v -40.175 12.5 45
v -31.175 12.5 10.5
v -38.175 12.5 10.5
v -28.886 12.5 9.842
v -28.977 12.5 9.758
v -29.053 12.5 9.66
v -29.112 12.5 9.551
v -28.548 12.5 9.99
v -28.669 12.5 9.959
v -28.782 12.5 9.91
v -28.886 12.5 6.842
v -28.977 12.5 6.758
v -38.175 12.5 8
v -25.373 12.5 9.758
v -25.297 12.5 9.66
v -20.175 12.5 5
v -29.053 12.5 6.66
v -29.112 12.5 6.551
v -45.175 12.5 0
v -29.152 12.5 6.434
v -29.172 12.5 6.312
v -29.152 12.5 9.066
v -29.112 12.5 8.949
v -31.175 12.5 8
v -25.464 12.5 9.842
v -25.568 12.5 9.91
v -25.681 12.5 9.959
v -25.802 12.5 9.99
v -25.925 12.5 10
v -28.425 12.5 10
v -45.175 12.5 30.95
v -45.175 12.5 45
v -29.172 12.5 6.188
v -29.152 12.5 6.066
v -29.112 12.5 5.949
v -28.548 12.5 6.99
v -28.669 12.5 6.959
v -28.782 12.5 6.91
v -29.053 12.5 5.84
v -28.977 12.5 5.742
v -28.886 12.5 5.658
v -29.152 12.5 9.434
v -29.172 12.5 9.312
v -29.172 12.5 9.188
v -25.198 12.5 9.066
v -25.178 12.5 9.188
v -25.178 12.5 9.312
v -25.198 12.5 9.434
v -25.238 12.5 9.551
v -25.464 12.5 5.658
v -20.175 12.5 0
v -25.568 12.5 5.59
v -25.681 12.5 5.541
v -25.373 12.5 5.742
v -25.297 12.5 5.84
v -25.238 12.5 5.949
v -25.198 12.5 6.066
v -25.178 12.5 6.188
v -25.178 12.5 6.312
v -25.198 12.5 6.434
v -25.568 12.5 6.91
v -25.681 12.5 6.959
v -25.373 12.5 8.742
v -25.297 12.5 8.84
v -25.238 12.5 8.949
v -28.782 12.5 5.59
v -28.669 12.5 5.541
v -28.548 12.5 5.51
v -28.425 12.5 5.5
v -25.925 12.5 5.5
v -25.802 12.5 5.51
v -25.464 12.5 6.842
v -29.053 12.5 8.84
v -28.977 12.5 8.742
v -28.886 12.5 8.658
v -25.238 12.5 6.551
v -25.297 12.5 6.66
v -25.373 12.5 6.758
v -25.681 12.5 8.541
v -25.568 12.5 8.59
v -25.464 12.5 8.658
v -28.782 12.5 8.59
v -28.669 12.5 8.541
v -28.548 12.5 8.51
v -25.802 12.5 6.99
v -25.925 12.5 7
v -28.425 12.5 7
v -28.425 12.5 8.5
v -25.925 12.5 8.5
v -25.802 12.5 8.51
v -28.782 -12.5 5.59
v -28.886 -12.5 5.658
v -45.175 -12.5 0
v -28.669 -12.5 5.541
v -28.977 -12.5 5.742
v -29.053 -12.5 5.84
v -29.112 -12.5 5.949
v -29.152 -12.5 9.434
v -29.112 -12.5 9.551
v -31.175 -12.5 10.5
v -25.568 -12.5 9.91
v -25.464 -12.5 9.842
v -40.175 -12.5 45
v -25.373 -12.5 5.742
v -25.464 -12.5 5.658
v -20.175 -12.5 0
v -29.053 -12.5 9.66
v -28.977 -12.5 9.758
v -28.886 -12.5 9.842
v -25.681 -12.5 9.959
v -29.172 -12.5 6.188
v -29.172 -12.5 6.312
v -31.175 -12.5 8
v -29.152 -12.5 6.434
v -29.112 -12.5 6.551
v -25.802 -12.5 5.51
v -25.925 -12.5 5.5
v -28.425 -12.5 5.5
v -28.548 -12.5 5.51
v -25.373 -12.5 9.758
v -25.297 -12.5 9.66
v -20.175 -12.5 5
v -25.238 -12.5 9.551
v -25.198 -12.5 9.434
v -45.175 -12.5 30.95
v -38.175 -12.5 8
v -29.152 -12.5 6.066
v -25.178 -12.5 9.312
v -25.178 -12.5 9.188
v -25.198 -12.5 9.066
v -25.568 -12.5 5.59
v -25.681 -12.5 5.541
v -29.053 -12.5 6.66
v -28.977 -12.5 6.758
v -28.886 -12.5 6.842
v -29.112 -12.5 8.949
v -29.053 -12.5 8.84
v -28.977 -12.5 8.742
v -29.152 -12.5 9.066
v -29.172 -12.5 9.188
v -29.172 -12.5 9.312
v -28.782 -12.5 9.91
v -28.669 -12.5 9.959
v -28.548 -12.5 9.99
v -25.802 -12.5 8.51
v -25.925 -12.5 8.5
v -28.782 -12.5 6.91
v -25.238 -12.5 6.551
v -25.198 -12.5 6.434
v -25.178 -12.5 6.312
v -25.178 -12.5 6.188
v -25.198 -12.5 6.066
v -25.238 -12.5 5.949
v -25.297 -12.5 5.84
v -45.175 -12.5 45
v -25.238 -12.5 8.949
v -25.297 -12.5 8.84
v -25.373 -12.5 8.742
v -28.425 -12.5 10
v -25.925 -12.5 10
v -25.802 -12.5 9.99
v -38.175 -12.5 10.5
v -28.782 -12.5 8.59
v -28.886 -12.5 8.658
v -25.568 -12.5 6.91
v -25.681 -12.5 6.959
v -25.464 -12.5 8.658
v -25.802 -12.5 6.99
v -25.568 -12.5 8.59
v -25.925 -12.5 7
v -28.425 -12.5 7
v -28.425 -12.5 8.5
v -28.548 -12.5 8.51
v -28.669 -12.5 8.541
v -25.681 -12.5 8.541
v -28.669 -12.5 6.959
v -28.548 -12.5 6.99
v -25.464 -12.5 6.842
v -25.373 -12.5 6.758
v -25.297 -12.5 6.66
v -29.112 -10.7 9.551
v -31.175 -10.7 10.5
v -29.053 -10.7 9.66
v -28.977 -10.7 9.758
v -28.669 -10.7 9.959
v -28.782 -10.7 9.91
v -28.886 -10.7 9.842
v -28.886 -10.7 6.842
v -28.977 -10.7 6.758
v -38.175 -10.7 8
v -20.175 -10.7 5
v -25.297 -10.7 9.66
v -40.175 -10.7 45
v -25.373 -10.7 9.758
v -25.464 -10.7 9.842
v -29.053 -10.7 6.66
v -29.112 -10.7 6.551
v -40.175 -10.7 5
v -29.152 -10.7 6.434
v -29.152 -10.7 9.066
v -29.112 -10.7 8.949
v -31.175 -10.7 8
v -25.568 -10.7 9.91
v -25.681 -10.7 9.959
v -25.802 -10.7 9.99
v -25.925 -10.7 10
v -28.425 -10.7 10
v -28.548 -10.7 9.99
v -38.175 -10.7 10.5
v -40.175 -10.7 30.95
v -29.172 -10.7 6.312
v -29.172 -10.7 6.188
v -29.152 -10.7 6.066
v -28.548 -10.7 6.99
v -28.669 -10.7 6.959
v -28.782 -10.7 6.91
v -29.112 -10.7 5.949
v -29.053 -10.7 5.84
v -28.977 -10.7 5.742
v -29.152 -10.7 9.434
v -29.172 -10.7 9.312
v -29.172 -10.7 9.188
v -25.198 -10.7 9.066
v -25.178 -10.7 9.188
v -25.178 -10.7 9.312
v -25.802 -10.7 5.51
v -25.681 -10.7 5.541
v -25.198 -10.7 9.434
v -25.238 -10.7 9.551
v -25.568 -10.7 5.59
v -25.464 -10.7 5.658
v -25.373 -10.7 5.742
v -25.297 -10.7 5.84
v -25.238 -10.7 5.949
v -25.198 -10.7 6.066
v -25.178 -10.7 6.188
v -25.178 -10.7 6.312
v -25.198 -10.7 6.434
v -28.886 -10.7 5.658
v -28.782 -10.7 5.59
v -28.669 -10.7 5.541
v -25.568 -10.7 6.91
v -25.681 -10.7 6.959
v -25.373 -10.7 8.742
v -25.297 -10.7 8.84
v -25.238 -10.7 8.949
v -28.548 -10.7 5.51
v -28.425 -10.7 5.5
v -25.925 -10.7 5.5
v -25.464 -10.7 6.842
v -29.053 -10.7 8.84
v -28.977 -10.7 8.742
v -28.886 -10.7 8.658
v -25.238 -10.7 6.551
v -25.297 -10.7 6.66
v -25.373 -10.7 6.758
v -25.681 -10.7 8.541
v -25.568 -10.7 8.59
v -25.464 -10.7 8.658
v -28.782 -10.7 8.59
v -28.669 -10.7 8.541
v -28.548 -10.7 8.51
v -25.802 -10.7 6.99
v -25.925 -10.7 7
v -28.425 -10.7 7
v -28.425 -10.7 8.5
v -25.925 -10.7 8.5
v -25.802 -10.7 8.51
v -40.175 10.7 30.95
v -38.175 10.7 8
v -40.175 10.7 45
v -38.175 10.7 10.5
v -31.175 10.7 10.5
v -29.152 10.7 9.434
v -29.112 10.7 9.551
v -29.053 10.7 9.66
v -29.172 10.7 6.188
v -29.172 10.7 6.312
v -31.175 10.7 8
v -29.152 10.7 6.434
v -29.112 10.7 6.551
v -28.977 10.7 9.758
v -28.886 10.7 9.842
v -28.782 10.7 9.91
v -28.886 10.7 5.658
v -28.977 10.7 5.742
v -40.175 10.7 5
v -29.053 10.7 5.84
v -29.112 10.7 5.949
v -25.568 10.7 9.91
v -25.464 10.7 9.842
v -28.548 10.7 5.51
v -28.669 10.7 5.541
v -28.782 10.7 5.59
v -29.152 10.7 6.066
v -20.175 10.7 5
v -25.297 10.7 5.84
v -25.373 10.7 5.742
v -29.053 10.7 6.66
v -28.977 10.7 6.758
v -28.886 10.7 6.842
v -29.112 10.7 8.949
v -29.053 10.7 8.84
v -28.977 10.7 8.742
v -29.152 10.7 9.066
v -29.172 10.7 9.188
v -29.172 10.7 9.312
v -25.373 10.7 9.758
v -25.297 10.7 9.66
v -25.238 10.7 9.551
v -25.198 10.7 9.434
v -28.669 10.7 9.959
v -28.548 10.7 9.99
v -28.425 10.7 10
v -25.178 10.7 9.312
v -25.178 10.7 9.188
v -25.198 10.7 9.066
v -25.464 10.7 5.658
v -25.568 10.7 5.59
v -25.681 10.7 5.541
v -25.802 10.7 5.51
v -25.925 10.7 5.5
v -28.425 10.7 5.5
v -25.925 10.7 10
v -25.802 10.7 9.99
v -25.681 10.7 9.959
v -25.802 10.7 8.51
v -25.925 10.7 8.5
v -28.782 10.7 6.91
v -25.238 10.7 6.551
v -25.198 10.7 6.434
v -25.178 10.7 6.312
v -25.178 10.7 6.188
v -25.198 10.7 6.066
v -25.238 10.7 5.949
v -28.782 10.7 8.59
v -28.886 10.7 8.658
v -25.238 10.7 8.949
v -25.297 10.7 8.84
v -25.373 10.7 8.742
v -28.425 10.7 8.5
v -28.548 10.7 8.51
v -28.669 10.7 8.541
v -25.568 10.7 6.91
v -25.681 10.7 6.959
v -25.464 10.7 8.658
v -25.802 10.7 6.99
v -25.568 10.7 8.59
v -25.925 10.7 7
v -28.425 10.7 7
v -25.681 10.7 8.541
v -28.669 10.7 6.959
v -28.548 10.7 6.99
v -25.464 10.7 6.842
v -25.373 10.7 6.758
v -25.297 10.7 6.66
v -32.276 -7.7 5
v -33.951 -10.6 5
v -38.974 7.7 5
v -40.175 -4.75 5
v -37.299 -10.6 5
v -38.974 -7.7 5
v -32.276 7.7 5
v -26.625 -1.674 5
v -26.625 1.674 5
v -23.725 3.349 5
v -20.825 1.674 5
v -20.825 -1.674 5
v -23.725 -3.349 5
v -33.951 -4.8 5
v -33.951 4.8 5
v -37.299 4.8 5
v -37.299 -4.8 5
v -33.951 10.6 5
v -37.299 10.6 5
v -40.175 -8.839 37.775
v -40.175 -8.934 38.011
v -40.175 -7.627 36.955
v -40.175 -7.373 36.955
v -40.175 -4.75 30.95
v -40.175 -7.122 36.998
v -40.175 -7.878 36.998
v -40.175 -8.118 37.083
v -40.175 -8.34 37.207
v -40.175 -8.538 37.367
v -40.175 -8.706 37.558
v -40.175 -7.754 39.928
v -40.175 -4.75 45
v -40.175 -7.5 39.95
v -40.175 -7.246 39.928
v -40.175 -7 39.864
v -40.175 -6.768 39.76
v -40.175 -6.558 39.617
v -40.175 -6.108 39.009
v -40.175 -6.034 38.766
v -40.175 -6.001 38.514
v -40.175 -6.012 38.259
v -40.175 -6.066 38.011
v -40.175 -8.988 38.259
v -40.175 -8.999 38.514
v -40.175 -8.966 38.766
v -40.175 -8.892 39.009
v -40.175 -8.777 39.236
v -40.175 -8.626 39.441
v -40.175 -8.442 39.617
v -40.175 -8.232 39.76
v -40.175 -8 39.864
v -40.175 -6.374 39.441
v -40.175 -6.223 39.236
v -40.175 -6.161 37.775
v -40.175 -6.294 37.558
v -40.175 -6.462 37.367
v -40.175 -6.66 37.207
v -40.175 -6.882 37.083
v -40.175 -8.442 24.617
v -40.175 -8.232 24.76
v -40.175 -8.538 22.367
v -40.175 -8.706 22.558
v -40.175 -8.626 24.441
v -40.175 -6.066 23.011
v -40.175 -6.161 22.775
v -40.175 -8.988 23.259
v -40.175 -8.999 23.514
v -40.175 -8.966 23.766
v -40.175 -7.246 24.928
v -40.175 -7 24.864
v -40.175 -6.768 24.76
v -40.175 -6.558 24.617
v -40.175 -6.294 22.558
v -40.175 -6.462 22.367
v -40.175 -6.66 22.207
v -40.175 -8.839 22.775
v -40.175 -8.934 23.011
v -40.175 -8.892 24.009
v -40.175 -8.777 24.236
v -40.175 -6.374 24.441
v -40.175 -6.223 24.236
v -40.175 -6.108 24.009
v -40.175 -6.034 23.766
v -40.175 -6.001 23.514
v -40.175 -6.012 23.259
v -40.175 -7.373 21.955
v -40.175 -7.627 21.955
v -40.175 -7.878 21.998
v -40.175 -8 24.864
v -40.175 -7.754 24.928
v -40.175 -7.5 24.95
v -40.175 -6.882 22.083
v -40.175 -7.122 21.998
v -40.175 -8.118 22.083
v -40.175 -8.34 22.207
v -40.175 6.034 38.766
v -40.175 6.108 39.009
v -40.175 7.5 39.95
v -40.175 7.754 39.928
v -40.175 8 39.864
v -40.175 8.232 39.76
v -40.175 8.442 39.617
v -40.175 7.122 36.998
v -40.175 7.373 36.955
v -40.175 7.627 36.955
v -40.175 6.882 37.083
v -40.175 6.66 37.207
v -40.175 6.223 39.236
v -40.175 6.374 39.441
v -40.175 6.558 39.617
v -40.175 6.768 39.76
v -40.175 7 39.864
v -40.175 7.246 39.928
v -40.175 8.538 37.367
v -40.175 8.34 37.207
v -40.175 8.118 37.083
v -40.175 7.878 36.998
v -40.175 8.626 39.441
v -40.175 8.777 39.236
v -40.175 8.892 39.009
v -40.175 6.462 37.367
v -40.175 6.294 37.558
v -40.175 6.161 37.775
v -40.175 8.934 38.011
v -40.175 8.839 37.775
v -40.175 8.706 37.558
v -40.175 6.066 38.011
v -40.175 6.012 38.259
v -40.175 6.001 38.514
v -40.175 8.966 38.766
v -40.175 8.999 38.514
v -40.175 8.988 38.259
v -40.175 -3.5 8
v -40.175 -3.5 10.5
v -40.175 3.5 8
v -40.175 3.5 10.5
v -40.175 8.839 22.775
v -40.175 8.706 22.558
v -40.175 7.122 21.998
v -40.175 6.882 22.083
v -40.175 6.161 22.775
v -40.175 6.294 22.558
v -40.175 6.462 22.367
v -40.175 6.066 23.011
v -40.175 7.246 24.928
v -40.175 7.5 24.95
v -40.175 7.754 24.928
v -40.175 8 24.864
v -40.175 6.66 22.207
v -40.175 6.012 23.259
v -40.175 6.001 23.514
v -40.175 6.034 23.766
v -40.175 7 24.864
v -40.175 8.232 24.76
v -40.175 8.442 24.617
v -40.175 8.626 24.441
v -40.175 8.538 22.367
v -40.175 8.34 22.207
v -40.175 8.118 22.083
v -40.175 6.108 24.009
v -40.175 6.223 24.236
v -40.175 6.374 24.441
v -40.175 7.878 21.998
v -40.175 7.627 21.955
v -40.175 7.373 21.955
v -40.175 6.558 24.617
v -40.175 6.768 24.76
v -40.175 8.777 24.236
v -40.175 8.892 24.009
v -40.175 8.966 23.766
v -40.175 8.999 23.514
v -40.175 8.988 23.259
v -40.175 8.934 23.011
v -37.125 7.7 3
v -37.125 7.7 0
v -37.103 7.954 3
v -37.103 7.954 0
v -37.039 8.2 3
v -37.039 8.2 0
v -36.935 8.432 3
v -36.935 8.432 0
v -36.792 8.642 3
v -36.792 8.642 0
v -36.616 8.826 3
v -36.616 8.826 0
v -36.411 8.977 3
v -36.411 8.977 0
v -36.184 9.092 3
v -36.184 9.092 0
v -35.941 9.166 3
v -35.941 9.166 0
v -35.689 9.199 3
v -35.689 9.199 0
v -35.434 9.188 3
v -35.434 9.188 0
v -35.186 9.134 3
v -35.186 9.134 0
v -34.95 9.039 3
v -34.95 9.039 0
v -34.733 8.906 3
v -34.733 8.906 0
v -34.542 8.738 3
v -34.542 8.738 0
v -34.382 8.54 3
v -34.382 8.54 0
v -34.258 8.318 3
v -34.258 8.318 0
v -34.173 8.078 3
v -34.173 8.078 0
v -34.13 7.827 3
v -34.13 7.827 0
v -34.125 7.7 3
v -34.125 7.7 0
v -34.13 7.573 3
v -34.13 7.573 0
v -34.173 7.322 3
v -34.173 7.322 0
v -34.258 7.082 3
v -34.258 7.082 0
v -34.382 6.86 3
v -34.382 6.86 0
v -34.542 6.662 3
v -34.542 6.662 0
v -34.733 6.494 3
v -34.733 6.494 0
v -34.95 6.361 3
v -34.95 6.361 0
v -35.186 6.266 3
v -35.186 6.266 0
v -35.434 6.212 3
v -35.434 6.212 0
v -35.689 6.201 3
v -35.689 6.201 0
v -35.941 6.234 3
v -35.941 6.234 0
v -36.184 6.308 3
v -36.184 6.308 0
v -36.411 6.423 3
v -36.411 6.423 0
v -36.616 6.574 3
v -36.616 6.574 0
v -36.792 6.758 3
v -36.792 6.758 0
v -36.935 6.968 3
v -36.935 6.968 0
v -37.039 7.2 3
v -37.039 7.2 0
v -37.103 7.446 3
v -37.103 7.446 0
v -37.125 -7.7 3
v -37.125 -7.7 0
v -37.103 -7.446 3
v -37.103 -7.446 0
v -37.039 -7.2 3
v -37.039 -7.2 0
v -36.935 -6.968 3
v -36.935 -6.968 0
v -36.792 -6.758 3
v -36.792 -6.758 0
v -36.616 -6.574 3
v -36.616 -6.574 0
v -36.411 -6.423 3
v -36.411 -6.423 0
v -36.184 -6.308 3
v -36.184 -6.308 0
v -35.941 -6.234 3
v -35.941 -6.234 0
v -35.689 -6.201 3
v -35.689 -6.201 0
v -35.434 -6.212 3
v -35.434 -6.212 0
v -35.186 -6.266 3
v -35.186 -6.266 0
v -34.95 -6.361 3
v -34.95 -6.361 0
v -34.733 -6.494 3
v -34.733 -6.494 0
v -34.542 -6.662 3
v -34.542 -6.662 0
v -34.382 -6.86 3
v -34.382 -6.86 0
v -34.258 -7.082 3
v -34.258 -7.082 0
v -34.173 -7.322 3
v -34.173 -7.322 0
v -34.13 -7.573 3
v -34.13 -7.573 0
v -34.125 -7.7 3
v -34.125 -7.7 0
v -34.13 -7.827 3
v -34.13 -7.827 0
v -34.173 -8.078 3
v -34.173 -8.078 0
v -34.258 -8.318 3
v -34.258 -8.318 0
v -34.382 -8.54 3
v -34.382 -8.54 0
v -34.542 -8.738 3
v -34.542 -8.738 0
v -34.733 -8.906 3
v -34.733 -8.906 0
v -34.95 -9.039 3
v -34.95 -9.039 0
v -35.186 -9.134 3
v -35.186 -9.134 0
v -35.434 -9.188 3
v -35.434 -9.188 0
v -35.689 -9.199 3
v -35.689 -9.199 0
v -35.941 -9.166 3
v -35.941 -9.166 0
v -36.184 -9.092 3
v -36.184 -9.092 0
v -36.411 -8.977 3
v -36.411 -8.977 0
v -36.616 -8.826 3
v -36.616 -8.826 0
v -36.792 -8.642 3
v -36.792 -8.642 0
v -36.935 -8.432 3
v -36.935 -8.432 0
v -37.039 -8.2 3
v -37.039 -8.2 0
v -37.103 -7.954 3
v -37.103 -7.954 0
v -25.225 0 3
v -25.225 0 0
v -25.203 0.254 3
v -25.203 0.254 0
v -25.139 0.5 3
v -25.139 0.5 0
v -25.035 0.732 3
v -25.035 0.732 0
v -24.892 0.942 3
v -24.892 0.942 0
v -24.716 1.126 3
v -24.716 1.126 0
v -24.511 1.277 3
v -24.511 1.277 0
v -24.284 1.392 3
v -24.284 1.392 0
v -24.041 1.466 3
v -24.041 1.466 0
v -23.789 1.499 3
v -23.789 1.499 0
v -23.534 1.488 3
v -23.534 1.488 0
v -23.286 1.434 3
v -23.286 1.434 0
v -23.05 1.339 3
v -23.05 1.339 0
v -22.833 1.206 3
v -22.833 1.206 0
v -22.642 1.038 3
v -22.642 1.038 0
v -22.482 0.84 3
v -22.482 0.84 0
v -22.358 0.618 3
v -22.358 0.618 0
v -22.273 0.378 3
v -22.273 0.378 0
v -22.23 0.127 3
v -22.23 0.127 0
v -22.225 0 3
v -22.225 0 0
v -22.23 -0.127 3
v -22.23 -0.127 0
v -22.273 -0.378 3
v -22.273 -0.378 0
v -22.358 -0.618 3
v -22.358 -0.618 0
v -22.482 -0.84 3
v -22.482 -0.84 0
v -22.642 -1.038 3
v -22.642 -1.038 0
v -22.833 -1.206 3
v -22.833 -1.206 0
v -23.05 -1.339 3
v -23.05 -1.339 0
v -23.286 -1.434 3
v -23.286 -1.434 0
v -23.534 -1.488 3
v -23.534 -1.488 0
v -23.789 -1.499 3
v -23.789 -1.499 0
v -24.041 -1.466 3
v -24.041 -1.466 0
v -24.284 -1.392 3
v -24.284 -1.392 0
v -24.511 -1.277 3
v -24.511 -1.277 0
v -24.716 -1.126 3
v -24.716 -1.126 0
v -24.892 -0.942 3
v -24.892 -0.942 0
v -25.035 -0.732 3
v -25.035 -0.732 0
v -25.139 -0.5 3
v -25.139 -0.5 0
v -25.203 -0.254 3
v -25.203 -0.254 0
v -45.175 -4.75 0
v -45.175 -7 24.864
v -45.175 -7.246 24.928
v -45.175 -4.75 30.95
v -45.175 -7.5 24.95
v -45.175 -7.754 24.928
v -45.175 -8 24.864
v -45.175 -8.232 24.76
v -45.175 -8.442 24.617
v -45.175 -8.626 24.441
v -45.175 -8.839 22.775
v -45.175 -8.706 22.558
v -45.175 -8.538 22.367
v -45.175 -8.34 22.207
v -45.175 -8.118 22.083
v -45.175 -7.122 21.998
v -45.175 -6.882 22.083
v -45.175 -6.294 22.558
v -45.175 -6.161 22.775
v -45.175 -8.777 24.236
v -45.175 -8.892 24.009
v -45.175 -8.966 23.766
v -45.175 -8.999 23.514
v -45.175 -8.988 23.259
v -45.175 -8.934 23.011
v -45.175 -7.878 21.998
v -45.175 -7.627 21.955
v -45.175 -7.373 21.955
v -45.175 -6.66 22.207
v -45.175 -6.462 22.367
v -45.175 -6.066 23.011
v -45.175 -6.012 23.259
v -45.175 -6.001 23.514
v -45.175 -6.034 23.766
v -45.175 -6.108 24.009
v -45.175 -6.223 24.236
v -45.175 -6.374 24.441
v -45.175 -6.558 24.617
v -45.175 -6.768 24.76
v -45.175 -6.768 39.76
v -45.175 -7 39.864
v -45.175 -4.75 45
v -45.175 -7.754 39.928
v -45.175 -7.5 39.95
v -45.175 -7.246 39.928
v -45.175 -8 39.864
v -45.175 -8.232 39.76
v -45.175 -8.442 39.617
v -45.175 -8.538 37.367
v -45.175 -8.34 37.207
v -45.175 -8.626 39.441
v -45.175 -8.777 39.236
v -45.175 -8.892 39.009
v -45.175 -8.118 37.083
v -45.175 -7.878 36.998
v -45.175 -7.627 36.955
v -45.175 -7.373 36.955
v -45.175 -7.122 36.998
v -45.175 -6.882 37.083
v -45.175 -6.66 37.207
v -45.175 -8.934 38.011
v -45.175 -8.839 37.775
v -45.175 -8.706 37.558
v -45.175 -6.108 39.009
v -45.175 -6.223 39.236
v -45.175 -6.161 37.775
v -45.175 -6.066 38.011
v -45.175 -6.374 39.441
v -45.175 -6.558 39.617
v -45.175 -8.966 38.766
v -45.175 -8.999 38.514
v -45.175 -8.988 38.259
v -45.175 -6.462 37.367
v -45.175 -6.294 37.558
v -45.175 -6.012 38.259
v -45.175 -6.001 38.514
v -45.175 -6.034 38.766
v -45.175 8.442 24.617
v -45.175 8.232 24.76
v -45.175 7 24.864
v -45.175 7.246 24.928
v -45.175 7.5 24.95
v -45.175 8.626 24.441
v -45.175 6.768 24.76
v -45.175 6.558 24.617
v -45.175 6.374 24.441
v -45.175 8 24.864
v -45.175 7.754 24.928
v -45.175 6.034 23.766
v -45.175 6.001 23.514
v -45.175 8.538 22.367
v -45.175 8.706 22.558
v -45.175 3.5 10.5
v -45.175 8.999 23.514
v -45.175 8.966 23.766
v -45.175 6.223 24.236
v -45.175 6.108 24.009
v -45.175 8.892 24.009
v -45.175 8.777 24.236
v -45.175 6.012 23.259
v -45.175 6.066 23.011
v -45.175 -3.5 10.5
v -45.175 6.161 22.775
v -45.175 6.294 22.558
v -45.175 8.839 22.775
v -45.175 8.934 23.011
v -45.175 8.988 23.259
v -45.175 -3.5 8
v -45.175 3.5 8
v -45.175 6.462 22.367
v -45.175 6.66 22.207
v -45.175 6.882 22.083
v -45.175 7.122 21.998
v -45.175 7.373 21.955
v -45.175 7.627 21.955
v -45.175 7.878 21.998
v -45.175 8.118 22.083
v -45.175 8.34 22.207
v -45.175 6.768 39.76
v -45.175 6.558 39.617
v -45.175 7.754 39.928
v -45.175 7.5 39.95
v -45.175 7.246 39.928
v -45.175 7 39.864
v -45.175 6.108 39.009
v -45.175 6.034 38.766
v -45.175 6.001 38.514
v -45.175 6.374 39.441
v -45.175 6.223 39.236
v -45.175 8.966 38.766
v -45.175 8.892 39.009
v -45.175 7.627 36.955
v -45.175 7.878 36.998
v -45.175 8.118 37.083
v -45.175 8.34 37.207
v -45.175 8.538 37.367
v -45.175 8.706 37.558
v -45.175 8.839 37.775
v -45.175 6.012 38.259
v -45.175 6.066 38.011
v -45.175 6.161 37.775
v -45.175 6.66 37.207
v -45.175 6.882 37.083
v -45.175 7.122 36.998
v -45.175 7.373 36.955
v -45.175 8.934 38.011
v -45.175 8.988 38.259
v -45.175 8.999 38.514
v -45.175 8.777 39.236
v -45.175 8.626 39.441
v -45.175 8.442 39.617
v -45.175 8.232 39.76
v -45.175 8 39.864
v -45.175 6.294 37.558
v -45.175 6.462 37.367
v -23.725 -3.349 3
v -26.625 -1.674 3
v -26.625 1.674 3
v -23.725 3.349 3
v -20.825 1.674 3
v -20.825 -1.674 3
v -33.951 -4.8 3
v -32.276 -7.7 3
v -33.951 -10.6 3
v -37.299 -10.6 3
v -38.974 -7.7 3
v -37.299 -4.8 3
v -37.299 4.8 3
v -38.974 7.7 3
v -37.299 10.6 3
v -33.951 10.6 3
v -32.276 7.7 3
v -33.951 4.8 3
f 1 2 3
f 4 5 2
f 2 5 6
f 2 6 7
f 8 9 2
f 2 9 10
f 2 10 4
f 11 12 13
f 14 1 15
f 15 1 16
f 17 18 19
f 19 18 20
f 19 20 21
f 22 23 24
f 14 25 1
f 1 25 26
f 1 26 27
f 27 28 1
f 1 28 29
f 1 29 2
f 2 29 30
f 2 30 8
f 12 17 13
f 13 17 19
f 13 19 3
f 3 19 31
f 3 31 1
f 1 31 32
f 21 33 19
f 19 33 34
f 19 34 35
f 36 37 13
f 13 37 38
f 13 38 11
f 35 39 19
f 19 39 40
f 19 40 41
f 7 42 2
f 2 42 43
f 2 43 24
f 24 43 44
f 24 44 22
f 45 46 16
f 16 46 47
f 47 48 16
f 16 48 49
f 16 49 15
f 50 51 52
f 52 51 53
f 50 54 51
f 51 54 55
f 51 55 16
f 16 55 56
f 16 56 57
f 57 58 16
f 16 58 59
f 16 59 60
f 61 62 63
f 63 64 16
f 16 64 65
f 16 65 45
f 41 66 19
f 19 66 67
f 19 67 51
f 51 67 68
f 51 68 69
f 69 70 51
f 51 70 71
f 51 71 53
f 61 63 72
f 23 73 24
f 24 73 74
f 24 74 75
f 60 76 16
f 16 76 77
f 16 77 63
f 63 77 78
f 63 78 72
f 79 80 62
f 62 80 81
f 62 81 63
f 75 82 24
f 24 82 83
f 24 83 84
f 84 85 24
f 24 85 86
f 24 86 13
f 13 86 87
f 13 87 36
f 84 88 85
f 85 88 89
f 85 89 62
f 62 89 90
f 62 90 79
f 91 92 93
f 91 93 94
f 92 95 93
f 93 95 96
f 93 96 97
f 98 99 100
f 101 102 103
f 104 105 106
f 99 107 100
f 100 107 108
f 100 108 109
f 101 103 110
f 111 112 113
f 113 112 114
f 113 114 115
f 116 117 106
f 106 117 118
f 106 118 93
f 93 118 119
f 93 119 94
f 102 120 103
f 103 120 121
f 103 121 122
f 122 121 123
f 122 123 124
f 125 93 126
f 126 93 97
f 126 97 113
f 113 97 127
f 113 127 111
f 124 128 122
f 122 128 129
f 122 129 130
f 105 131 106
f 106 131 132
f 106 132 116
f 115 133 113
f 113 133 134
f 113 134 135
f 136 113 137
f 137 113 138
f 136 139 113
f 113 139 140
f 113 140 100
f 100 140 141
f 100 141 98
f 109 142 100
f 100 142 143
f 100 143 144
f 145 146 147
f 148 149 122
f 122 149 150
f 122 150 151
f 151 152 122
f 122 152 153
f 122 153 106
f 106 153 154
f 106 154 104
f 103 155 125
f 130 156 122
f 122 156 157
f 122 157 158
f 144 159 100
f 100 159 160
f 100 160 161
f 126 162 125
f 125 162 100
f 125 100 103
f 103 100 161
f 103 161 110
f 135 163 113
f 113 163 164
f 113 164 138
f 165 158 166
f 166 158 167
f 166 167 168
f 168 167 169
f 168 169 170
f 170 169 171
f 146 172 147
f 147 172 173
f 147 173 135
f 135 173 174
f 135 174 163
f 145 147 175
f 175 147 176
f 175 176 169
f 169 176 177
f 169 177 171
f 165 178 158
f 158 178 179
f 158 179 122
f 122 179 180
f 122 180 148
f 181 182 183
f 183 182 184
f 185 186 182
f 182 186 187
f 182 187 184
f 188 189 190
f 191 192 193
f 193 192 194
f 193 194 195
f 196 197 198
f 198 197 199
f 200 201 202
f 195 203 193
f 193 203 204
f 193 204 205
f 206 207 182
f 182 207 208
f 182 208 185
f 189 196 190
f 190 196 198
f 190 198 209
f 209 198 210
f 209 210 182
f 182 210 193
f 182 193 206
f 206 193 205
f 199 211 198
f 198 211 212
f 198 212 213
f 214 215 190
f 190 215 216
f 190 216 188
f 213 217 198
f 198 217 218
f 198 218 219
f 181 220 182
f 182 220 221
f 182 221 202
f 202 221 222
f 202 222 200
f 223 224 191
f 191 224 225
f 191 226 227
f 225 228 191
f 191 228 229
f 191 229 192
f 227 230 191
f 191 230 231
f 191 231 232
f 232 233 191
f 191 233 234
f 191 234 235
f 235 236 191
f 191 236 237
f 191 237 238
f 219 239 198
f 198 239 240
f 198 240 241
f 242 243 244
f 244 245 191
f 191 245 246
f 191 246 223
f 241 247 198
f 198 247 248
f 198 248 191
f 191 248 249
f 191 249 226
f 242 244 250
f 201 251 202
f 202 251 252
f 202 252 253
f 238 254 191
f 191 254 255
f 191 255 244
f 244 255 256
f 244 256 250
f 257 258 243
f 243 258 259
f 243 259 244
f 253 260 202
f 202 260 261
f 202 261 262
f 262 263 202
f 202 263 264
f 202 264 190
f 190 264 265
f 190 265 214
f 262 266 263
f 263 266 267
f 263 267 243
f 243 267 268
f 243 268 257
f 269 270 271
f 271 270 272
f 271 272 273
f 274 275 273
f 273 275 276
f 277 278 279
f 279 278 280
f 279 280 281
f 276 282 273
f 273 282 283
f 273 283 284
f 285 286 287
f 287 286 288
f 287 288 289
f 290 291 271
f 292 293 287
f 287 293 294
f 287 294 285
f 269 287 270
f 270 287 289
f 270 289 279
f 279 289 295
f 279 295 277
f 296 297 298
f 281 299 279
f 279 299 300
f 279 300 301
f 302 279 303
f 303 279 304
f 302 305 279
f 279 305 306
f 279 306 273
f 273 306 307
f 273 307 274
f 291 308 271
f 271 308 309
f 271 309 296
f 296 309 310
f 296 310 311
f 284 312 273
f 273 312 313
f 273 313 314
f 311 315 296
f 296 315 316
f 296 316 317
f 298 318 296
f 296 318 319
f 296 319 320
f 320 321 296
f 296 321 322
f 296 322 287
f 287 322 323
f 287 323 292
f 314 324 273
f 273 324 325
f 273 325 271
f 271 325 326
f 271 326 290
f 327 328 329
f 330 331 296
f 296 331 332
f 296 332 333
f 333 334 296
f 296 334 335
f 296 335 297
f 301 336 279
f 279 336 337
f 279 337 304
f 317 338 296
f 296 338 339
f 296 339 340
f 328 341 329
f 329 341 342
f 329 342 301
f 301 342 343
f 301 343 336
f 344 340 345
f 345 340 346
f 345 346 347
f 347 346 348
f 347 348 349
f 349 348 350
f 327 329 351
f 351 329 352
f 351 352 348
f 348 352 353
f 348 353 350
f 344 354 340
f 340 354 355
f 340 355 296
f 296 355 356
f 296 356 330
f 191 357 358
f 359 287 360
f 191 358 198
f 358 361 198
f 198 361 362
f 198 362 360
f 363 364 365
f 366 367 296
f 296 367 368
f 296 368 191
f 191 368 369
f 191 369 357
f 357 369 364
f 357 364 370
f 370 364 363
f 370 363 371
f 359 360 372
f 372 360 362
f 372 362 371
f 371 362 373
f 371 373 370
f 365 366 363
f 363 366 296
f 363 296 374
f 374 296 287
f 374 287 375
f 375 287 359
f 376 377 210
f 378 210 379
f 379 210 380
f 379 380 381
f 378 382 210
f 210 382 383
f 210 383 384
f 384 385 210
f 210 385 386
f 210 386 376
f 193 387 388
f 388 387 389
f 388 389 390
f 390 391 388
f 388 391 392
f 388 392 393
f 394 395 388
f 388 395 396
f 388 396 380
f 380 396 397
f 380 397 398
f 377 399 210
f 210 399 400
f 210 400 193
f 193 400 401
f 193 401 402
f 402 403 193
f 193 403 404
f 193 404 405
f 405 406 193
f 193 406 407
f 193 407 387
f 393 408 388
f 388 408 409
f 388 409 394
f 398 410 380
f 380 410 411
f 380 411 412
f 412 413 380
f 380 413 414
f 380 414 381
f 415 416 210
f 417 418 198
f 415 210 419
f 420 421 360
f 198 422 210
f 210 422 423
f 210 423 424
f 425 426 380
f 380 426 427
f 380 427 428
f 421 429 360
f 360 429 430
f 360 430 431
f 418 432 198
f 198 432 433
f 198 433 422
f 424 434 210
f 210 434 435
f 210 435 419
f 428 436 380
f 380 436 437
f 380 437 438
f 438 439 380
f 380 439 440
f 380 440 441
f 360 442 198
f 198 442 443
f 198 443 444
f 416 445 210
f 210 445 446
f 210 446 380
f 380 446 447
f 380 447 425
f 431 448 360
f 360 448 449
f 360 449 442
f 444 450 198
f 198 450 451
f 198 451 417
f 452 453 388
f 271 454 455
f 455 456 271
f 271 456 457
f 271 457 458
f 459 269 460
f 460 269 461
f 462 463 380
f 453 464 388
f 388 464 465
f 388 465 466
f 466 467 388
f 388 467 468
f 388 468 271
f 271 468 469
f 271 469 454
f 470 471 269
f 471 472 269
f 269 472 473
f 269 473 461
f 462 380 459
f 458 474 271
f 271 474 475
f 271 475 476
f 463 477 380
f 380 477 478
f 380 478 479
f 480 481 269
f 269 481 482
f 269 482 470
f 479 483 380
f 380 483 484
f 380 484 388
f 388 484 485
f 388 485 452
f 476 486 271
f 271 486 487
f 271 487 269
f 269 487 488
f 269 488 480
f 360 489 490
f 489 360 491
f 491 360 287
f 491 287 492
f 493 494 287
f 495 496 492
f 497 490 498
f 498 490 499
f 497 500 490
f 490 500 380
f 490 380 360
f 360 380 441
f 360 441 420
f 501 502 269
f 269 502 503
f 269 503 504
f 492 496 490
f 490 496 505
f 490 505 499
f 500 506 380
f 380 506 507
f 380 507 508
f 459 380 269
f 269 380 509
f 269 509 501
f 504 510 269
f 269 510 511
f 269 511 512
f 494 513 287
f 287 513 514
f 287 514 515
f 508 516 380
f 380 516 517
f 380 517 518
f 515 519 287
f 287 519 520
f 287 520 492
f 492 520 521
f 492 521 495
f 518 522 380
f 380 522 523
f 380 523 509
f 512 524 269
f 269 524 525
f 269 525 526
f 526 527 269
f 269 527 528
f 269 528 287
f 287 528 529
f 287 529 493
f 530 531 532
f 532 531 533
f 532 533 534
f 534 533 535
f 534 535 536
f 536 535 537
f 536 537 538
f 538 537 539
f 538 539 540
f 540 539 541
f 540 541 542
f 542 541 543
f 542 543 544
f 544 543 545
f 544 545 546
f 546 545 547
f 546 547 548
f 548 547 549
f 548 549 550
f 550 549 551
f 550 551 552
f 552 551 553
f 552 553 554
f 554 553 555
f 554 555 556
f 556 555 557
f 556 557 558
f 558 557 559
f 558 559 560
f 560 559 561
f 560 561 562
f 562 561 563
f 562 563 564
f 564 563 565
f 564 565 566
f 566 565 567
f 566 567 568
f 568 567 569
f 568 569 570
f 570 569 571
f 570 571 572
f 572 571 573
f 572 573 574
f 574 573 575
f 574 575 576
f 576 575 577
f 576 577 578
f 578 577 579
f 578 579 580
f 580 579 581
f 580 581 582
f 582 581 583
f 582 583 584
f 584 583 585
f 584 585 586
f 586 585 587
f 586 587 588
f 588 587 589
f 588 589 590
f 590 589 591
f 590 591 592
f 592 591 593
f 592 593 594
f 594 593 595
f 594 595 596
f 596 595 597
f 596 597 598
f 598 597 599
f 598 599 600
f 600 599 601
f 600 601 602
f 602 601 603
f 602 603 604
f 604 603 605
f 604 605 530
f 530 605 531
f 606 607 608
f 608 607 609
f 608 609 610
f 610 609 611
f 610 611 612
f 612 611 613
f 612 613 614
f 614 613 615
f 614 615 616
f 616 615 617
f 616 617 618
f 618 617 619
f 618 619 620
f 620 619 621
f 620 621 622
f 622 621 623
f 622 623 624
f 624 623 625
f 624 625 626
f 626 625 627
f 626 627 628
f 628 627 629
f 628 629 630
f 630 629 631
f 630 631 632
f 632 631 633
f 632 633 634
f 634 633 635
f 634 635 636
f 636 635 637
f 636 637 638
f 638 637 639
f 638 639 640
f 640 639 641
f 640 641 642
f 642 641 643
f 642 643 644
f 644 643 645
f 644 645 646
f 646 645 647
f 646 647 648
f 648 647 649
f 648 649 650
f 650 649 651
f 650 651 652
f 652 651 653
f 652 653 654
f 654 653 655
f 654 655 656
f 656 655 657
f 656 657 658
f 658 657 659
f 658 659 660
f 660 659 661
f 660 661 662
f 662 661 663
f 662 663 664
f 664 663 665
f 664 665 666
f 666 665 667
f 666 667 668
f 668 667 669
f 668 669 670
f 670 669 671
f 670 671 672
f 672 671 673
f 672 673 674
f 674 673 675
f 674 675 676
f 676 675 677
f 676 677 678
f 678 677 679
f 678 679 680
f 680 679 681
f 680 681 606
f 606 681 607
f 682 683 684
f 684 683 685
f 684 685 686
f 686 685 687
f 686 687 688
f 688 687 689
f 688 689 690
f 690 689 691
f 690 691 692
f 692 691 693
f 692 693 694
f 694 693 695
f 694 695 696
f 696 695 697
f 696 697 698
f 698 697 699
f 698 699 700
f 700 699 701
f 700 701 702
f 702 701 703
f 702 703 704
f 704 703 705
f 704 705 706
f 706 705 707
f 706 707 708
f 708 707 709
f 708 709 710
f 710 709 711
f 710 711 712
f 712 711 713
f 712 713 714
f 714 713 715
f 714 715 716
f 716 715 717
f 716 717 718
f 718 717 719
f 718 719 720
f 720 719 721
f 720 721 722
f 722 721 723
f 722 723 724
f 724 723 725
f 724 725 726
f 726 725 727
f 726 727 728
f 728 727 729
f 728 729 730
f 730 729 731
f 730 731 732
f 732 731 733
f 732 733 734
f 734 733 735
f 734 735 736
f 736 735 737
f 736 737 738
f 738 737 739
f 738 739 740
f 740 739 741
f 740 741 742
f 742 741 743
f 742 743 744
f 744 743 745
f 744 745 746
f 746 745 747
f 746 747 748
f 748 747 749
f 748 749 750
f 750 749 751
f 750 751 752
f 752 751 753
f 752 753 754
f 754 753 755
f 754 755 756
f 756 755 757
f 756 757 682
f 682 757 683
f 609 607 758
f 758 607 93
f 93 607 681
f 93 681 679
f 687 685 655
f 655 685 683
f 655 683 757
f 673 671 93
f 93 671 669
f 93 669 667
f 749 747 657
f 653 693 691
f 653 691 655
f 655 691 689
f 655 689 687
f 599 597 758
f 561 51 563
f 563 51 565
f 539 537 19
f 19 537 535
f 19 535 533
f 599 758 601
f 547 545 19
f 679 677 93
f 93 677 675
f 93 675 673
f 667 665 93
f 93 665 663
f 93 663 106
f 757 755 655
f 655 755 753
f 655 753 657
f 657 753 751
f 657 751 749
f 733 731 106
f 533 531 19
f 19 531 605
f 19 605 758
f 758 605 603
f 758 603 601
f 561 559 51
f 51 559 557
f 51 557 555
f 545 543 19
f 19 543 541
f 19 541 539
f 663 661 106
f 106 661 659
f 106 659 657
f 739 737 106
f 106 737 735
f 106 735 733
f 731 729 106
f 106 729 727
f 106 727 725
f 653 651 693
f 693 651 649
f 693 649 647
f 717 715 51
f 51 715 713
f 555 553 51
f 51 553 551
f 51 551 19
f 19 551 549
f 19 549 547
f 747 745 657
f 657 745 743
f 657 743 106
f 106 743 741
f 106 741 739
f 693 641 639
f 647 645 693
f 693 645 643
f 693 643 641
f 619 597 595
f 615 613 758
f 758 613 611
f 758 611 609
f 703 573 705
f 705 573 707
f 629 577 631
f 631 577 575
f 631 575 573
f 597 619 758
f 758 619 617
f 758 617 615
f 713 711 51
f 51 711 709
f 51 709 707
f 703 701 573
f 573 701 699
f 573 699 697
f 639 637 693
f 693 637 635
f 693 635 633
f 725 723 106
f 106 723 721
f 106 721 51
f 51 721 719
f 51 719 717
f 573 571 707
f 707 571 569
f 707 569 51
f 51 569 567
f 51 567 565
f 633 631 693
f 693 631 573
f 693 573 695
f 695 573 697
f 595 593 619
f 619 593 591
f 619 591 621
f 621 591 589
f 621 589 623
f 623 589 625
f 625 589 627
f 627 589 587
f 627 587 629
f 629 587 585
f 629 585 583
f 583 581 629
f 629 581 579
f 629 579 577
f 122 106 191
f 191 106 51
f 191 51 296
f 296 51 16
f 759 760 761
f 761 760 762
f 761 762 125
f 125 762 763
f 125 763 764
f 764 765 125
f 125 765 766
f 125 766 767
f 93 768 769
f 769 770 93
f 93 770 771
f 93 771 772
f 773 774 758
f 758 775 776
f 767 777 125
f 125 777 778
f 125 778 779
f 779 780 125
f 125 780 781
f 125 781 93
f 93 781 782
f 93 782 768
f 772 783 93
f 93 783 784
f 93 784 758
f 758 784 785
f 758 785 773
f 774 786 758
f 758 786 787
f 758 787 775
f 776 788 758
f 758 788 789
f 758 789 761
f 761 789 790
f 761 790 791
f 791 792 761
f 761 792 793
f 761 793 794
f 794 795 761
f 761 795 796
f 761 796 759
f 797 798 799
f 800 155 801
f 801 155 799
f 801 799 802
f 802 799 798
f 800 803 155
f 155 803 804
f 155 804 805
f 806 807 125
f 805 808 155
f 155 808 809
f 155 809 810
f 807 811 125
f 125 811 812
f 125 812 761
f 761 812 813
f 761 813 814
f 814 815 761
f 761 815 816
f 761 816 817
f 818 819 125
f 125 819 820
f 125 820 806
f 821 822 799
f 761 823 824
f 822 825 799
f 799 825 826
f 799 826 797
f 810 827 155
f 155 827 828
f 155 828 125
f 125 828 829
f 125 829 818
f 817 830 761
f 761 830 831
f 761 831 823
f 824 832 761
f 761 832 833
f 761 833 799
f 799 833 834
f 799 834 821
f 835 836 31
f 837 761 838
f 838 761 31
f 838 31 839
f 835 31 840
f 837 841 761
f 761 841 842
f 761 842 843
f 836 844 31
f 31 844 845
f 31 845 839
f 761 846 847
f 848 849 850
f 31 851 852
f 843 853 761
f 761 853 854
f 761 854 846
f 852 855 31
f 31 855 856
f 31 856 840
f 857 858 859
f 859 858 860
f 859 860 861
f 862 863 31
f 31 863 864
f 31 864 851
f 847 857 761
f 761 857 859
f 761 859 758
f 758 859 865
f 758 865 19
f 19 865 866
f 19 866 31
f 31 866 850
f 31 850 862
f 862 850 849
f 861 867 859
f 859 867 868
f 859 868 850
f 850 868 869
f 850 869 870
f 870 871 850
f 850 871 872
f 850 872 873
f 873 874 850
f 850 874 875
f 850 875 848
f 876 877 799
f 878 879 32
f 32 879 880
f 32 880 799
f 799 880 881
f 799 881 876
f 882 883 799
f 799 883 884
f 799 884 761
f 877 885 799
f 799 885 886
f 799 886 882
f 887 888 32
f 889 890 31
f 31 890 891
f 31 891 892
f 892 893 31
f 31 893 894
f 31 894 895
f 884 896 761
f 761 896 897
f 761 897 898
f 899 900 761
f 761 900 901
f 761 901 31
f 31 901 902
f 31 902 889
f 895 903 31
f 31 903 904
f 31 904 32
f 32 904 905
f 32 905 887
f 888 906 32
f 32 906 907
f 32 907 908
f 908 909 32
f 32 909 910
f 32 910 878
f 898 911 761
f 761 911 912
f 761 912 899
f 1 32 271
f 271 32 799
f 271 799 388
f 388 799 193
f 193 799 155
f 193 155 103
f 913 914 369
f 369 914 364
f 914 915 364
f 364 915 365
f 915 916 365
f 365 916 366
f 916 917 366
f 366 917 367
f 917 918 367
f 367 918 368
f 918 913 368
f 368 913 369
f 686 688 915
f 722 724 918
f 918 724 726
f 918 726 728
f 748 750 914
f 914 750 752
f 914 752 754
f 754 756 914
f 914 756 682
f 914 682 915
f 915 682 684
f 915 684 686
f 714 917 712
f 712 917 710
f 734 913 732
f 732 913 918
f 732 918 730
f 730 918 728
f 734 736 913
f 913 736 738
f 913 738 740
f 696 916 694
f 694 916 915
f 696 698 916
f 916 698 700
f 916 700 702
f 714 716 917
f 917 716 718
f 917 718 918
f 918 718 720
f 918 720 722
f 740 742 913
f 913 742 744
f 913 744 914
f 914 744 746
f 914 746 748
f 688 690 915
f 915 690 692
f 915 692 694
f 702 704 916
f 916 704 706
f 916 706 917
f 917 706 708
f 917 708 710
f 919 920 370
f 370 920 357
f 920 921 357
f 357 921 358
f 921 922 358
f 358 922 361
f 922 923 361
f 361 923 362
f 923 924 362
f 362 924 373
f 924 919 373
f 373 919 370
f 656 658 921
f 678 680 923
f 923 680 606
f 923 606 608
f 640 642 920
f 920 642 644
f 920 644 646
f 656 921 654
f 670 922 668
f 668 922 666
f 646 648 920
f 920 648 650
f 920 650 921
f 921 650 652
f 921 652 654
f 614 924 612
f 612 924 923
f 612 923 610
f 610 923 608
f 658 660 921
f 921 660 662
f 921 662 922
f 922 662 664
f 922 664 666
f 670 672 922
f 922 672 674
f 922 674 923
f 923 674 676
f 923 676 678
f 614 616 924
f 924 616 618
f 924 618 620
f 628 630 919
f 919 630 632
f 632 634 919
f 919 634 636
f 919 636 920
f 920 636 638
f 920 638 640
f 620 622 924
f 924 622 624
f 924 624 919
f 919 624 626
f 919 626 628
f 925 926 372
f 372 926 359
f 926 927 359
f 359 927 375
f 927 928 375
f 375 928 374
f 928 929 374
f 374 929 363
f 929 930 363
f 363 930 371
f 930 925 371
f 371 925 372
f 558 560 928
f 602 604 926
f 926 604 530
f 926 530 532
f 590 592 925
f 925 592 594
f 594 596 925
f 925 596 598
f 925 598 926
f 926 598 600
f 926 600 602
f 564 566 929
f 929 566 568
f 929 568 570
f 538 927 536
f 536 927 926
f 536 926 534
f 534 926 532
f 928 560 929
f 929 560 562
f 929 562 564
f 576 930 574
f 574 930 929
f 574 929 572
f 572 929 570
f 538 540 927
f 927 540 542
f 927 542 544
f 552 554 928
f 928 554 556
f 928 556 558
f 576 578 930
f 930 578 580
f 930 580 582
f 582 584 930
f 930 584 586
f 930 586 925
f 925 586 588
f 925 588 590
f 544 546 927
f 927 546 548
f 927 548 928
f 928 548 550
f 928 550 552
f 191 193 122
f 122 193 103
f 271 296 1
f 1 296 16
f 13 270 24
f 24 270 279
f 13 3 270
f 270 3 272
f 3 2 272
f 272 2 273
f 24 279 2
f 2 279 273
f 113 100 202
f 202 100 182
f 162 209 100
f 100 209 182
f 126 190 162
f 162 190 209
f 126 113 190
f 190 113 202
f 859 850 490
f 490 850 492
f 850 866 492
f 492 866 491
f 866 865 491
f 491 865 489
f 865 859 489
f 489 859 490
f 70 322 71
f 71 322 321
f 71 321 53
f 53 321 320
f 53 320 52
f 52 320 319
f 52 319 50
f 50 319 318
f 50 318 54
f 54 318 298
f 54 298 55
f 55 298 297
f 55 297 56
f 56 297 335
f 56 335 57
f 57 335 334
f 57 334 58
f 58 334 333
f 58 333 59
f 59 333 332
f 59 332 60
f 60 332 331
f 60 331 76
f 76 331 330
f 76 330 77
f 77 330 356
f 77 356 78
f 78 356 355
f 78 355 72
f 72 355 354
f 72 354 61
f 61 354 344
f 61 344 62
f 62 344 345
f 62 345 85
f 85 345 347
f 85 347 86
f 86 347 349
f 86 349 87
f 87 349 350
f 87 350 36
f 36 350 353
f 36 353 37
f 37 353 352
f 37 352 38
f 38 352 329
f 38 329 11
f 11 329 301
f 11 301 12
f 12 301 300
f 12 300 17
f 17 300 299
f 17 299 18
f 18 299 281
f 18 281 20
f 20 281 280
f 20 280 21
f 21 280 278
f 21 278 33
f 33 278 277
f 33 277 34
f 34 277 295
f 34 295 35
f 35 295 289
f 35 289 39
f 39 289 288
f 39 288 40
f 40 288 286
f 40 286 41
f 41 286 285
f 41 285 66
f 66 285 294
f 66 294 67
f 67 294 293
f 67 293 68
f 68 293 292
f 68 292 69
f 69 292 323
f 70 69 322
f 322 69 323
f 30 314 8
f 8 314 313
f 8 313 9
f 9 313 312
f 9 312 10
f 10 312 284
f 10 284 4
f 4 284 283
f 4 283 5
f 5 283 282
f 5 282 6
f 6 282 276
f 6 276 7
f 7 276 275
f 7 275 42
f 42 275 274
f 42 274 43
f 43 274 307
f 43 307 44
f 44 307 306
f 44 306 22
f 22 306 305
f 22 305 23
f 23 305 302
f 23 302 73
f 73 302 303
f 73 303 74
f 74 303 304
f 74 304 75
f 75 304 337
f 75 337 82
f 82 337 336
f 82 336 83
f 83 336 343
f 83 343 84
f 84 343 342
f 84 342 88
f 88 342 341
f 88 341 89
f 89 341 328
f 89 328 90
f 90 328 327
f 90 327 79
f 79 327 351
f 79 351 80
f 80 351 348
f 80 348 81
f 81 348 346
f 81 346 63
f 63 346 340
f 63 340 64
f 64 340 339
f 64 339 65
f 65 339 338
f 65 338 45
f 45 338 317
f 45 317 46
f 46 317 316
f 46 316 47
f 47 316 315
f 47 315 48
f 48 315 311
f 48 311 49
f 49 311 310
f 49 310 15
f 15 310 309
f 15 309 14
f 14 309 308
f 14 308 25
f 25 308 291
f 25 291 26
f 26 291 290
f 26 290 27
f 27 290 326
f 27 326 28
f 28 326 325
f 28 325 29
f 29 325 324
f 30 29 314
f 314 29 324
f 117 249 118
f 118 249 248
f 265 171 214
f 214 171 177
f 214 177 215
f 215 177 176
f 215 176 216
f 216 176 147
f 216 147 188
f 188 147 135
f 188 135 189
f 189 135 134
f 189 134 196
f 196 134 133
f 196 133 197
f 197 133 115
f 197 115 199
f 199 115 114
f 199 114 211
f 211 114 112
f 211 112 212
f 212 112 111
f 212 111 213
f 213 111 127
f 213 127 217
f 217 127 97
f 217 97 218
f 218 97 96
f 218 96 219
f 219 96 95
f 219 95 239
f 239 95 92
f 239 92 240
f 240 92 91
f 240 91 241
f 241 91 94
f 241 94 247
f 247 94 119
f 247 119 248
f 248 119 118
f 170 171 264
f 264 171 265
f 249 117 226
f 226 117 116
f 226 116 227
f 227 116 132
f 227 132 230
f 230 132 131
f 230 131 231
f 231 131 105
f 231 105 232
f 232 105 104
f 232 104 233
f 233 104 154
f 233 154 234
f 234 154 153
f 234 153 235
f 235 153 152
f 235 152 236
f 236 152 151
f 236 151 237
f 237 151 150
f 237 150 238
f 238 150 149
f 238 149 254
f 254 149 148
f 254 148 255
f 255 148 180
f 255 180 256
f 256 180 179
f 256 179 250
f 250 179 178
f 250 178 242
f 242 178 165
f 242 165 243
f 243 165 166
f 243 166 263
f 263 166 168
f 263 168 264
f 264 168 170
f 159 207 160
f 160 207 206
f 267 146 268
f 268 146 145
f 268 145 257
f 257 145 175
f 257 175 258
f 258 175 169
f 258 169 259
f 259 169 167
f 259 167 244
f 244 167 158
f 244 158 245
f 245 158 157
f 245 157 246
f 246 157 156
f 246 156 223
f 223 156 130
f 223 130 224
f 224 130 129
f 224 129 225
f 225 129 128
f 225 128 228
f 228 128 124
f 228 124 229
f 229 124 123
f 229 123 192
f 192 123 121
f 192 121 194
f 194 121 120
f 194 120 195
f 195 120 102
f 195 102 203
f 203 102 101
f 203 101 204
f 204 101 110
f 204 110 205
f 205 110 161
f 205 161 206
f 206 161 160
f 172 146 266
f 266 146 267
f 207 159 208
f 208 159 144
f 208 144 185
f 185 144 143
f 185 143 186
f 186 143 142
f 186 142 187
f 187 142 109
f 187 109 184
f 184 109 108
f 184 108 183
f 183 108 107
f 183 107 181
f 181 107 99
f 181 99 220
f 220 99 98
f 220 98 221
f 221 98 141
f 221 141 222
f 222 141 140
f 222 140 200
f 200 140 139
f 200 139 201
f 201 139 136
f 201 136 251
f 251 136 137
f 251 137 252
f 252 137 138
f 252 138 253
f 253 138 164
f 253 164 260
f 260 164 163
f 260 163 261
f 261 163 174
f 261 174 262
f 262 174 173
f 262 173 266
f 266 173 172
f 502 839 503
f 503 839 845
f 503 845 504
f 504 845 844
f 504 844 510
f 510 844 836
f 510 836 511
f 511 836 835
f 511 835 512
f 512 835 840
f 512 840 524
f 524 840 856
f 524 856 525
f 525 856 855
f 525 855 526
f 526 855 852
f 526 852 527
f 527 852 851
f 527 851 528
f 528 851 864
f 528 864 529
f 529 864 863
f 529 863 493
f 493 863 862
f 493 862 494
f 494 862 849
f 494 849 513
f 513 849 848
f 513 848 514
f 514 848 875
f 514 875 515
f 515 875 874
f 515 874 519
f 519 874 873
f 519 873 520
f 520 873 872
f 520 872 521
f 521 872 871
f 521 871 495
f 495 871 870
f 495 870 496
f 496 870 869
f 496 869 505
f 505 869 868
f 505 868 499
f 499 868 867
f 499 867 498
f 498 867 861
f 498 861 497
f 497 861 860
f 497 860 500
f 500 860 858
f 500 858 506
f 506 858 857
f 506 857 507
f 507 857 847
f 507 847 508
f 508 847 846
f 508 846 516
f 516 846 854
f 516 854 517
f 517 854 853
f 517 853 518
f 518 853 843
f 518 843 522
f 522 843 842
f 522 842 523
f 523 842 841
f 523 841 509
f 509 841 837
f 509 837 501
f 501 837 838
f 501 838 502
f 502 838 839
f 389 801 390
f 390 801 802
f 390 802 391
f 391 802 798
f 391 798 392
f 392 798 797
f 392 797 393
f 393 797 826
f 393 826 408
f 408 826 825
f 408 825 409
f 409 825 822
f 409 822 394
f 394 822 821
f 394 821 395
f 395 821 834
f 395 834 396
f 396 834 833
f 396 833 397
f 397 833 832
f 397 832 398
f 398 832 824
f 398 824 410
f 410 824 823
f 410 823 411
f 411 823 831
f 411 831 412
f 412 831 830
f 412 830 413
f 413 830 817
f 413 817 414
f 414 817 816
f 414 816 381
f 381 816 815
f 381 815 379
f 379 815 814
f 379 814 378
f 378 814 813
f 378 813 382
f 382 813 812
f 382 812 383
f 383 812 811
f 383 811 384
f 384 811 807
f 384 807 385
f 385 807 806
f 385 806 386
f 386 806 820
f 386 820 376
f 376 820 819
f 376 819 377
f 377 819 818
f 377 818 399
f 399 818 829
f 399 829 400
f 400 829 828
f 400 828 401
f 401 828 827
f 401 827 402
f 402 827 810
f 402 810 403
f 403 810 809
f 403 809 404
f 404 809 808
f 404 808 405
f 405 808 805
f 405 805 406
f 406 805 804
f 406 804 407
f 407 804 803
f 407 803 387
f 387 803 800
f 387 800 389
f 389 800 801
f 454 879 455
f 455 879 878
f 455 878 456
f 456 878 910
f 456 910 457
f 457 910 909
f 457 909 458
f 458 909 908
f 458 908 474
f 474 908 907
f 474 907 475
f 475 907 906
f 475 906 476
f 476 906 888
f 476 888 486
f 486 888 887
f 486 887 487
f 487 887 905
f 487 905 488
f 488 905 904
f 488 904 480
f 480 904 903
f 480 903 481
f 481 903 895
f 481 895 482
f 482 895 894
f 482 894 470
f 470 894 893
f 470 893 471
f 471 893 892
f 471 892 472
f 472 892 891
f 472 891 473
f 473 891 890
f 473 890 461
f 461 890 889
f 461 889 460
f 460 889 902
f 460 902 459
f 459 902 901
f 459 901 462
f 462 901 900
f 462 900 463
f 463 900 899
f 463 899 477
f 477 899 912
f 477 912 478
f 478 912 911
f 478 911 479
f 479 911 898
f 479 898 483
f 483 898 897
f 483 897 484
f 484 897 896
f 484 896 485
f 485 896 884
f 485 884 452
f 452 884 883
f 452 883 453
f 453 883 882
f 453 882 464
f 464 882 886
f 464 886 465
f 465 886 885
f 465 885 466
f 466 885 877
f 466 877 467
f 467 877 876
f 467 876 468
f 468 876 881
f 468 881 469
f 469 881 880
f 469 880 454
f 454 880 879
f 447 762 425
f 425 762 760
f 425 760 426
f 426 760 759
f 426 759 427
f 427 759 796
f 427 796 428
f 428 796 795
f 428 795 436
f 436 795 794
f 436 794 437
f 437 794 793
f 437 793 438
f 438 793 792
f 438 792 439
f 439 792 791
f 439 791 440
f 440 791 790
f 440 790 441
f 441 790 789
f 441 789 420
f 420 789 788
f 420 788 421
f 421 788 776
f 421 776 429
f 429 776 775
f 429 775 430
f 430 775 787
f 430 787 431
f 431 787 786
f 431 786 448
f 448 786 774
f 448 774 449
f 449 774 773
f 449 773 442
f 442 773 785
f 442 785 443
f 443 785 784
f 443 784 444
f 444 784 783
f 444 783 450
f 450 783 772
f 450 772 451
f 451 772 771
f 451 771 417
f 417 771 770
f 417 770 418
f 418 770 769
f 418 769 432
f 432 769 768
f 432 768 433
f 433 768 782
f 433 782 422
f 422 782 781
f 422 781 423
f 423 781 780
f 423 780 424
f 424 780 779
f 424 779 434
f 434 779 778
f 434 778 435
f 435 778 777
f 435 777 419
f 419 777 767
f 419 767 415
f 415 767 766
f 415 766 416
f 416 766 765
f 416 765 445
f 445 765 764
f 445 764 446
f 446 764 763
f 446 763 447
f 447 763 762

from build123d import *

# Parameters (mm, degrees)
SKETCH1_W           = 25
SKETCH1_H           = 25
SKETCH1_R           = 1.5
BOSS_EXTRUDE1_DEPTH = 5
SKETCH2_W           = 5
SKETCH2_H           = 25
BOSS_EXTRUDE2_DEPTH = 40
CUT_EXTRUDE1_DEPTH  = 2
BOSS_EXTRUDE3_DEPTH = 1.8
BOSS_EXTRUDE4_DEPTH = 1.8
SKETCH6_W           = 7
SKETCH6_H           = 2.5
CUT_EXTRUDE2_DEPTH  = 26
SKETCH7_W           = 2.5
SKETCH7_H           = 7
CUT_EXTRUDE3_DEPTH  = 6
CUT_EXTRUDE4_DEPTH  = 26
SKETCH9_R           = 1.5
CUT_EXTRUDE5_DEPTH  = 26


with BuildPart() as part:
    # Sketch1 → Boss-Extrude1 (new body)
    with BuildSketch(Plane.XY):
        with Locations((-32.675, 0)):
            Rectangle(SKETCH1_W, SKETCH1_H)
        with Locations((-35.625, 7.7)):
            Circle(SKETCH1_R, mode=Mode.SUBTRACT)
        with Locations((-35.625, -7.7)):
            Circle(SKETCH1_R, mode=Mode.SUBTRACT)
        with Locations((-23.725, 0)):
            Circle(SKETCH1_R, mode=Mode.SUBTRACT)
    extrude(amount=BOSS_EXTRUDE1_DEPTH)

    # Sketch2 → Boss-Extrude2 (add)
    with BuildSketch(Plane.XY.offset(5)):
        with Locations((-42.675, 0)):
            Rectangle(SKETCH2_W, SKETCH2_H)
    extrude(amount=BOSS_EXTRUDE2_DEPTH)

    # Sketch3 → Cut-Extrude1 (cut)
    with BuildSketch(Plane.XY.offset(5)):
        Polygon((-37.299315781, 4.8), (-33.950684219, 4.8), (-32.276368439, 7.7), (-33.950684219, 10.6), (-37.299315781, 10.6), (-38.973631561, 7.7), align=None)
        Polygon((-33.950684219, -4.8), (-37.299315781, -4.8), (-38.973631561, -7.7), (-37.299315781, -10.6), (-33.950684219, -10.6), (-32.276368439, -7.7), align=None)
        Polygon((-23.725, -3.348631561), (-20.825, -1.674315781), (-20.825, 1.674315781), (-23.725, 3.348631561), (-26.625, 1.674315781), (-26.625, -1.674315781), align=None)
    extrude(amount=-CUT_EXTRUDE1_DEPTH, mode=Mode.SUBTRACT)

    # Sketch4 → Boss-Extrude3 (add)
    with BuildSketch(Plane.XZ.offset(12.5)):
        Polygon((-40.175, 45), (-20.175, 5), (-40.175, 5), align=None)
    extrude(amount=-BOSS_EXTRUDE3_DEPTH)

    # Sketch5 → Boss-Extrude4 (add)
    with BuildSketch(Plane(origin=(0, 12.5, 0), x_dir=(1, 0, 0), z_dir=(0, 1, 0))):
        Polygon((-40.175, -45), (-20.175, -5), (-40.175, -5), align=None)
    extrude(amount=-BOSS_EXTRUDE4_DEPTH)

    # Sketch6 → Cut-Extrude2 (cut, through all)
    with BuildSketch(Plane(origin=(0, 12.5, 0), x_dir=(1, 0, 0), z_dir=(0, 1, 0))):
        with Locations((-34.675, -9.25)):
            Rectangle(SKETCH6_W, SKETCH6_H)
    extrude(amount=-CUT_EXTRUDE2_DEPTH, mode=Mode.SUBTRACT)

    # Sketch7 → Cut-Extrude3 (cut, through all)
    with BuildSketch(Plane(origin=(-40.175, 0, 0), x_dir=(0, 0, -1), z_dir=(1, 0, 0))):
        with Locations((-9.25, 0)):
            Rectangle(SKETCH7_W, SKETCH7_H)
    extrude(amount=-CUT_EXTRUDE3_DEPTH, mode=Mode.SUBTRACT)

    # Sketch8 → Cut-Extrude4 (cut, through all)
    with BuildSketch(Plane.XZ.offset(12.5)):
        with BuildLine():
            Line((-25.925, 10), (-28.425, 10))
            ThreePointArc((-28.425, 10), (-29.175, 9.25), (-28.425, 8.5))
            Line((-28.425, 8.5), (-25.925, 8.5))
            ThreePointArc((-25.925, 8.5), (-25.175, 9.25), (-25.925, 10))
        make_face()
        with BuildLine():
            Line((-28.425, 5.5), (-25.925, 5.5))
            ThreePointArc((-25.925, 5.5), (-25.175, 6.25), (-25.925, 7))
            Line((-25.925, 7), (-28.425, 7))
            ThreePointArc((-28.425, 7), (-29.175, 6.25), (-28.425, 5.5))
        make_face()
    extrude(amount=-CUT_EXTRUDE4_DEPTH, mode=Mode.SUBTRACT)

    # Sketch9 → Cut-Extrude5 (cut, through all)
    with BuildSketch(Plane.ZY.offset(45.175)):
        with Locations((23.45, 7.5)):
            Circle(SKETCH9_R)
        with Locations((23.45, -7.5)):
            Circle(SKETCH9_R)
        with Locations((38.45, 7.5)):
            Circle(SKETCH9_R)
        with Locations((38.45, -7.5)):
            Circle(SKETCH9_R)
    extrude(amount=-CUT_EXTRUDE5_DEPTH, mode=Mode.SUBTRACT)


solid = part.part
